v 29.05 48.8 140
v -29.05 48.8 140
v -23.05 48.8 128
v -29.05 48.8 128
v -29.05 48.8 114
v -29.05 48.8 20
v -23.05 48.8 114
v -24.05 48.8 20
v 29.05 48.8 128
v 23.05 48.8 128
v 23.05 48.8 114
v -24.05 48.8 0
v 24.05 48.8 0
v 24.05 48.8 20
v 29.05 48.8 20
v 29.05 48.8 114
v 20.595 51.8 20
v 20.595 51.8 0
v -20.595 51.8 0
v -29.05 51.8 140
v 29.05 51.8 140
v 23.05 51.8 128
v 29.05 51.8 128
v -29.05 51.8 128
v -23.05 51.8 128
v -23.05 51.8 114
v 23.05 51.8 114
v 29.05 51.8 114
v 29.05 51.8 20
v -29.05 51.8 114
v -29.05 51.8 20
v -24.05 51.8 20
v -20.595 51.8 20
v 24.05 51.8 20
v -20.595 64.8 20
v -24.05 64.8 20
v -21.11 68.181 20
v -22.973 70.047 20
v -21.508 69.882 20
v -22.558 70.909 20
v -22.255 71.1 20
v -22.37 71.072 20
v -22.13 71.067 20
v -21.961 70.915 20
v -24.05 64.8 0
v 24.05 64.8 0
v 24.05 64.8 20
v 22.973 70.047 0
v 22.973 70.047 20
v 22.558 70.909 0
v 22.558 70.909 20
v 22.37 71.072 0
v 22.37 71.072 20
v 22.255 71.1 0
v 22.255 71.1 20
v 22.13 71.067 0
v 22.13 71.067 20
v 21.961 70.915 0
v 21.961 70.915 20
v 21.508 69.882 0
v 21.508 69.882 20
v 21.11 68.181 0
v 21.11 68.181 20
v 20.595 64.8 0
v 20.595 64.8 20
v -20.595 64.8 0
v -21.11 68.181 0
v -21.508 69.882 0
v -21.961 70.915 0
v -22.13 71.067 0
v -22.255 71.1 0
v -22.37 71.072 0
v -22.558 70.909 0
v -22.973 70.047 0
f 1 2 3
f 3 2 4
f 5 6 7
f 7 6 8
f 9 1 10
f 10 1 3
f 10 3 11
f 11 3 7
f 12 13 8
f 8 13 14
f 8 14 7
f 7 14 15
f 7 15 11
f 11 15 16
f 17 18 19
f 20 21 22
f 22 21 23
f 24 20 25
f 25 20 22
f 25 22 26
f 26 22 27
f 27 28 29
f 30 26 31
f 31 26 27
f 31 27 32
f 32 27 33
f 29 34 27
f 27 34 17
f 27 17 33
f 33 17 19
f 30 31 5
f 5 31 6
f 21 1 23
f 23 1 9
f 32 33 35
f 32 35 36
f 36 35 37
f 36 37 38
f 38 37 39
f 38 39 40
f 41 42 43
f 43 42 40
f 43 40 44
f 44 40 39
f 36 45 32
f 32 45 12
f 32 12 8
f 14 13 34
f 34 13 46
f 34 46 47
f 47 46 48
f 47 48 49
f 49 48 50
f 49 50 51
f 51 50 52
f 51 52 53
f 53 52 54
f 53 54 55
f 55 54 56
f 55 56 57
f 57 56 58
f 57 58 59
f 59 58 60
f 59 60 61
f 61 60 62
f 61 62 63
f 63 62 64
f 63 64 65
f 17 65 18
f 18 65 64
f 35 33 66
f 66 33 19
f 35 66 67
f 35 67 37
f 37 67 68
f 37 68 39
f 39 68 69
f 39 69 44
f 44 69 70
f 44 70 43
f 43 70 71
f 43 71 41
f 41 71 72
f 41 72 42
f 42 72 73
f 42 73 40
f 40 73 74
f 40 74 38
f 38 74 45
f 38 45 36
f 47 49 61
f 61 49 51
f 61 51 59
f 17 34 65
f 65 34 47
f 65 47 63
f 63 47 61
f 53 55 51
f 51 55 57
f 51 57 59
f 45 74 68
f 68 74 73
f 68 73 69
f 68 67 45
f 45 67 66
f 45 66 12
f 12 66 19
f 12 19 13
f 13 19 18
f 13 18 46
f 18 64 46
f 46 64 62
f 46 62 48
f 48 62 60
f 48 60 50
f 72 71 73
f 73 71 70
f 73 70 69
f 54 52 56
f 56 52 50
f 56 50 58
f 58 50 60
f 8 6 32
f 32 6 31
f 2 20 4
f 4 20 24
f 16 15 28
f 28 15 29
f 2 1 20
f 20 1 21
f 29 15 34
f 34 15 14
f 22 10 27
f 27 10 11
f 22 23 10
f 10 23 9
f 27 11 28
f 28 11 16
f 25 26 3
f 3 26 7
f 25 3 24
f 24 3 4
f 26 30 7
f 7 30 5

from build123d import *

# Parameters (mm, degrees)
BOSS_EXTRUDE1_DEPTH = 20
SKETCH2_W           = 5
SKETCH2_H           = 3
BOSS_EXTRUDE2_DEPTH = 120
SKETCH4_W           = 6
SKETCH4_H           = 14
CUT_EXTRUDE1_DEPTH  = 10


with BuildPart() as part:
    # Sketch1 → Boss-Extrude1 (new body)
    with BuildSketch(Plane.XY):
        with BuildLine():
            Line((-24.05, 64.8), (-24.05, 48.8))
            Line((-24.05, 48.8), (24.05, 48.8))
            Line((24.05, 48.8), (24.05, 64.8))
            add(Edge.make_bspline(
                [(24.05, 64.8), (22.187774265, 77.400108054), (20.594686421, 64.8)],
                knots=[0, 0, 0, 1, 1, 1], degree=2))
            Line((20.594686421, 64.8), (20.594686421, 51.8))
            Line((20.594686421, 51.8), (-20.594686421, 51.8))
            Line((-20.594686421, 51.8), (-20.594686421, 64.8))
            add(Edge.make_bspline(
                [(-24.05, 64.8), (-22.187774265, 77.400108054), (-20.594686421, 64.8)],
                knots=[0, 0, 0, 1, 1, 1], degree=2))
        make_face()
    extrude(amount=BOSS_EXTRUDE1_DEPTH)

    # Sketch2 → Boss-Extrude2 (add)
    with BuildSketch(Plane.XY.offset(20)):
        with Locations((-26.55, 50.3)):
            Rectangle(SKETCH2_W, SKETCH2_H)
        Polygon((-24.05, 51.8), (-24.05, 48.8), (24.05, 48.8), (24.05, 51.8), (20.594686421, 51.8), (-20.594686421, 51.8), align=None)
        with Locations((26.55, 50.3)):
            Rectangle(SKETCH2_W, SKETCH2_H)
    extrude(amount=BOSS_EXTRUDE2_DEPTH)

    # Sketch4 → Cut-Extrude1 (cut)
    with BuildSketch(Plane(origin=(0, 51.8, 0), x_dir=(1, 0, 0), z_dir=(0, 1, 0))):
        with Locations((-26.05, -121)):
            Rectangle(SKETCH4_W, SKETCH4_H)
        with Locations((26.05, -121)):
            Rectangle(SKETCH4_W, SKETCH4_H)
    extrude(amount=-CUT_EXTRUDE1_DEPTH, mode=Mode.SUBTRACT)


solid = part.part
